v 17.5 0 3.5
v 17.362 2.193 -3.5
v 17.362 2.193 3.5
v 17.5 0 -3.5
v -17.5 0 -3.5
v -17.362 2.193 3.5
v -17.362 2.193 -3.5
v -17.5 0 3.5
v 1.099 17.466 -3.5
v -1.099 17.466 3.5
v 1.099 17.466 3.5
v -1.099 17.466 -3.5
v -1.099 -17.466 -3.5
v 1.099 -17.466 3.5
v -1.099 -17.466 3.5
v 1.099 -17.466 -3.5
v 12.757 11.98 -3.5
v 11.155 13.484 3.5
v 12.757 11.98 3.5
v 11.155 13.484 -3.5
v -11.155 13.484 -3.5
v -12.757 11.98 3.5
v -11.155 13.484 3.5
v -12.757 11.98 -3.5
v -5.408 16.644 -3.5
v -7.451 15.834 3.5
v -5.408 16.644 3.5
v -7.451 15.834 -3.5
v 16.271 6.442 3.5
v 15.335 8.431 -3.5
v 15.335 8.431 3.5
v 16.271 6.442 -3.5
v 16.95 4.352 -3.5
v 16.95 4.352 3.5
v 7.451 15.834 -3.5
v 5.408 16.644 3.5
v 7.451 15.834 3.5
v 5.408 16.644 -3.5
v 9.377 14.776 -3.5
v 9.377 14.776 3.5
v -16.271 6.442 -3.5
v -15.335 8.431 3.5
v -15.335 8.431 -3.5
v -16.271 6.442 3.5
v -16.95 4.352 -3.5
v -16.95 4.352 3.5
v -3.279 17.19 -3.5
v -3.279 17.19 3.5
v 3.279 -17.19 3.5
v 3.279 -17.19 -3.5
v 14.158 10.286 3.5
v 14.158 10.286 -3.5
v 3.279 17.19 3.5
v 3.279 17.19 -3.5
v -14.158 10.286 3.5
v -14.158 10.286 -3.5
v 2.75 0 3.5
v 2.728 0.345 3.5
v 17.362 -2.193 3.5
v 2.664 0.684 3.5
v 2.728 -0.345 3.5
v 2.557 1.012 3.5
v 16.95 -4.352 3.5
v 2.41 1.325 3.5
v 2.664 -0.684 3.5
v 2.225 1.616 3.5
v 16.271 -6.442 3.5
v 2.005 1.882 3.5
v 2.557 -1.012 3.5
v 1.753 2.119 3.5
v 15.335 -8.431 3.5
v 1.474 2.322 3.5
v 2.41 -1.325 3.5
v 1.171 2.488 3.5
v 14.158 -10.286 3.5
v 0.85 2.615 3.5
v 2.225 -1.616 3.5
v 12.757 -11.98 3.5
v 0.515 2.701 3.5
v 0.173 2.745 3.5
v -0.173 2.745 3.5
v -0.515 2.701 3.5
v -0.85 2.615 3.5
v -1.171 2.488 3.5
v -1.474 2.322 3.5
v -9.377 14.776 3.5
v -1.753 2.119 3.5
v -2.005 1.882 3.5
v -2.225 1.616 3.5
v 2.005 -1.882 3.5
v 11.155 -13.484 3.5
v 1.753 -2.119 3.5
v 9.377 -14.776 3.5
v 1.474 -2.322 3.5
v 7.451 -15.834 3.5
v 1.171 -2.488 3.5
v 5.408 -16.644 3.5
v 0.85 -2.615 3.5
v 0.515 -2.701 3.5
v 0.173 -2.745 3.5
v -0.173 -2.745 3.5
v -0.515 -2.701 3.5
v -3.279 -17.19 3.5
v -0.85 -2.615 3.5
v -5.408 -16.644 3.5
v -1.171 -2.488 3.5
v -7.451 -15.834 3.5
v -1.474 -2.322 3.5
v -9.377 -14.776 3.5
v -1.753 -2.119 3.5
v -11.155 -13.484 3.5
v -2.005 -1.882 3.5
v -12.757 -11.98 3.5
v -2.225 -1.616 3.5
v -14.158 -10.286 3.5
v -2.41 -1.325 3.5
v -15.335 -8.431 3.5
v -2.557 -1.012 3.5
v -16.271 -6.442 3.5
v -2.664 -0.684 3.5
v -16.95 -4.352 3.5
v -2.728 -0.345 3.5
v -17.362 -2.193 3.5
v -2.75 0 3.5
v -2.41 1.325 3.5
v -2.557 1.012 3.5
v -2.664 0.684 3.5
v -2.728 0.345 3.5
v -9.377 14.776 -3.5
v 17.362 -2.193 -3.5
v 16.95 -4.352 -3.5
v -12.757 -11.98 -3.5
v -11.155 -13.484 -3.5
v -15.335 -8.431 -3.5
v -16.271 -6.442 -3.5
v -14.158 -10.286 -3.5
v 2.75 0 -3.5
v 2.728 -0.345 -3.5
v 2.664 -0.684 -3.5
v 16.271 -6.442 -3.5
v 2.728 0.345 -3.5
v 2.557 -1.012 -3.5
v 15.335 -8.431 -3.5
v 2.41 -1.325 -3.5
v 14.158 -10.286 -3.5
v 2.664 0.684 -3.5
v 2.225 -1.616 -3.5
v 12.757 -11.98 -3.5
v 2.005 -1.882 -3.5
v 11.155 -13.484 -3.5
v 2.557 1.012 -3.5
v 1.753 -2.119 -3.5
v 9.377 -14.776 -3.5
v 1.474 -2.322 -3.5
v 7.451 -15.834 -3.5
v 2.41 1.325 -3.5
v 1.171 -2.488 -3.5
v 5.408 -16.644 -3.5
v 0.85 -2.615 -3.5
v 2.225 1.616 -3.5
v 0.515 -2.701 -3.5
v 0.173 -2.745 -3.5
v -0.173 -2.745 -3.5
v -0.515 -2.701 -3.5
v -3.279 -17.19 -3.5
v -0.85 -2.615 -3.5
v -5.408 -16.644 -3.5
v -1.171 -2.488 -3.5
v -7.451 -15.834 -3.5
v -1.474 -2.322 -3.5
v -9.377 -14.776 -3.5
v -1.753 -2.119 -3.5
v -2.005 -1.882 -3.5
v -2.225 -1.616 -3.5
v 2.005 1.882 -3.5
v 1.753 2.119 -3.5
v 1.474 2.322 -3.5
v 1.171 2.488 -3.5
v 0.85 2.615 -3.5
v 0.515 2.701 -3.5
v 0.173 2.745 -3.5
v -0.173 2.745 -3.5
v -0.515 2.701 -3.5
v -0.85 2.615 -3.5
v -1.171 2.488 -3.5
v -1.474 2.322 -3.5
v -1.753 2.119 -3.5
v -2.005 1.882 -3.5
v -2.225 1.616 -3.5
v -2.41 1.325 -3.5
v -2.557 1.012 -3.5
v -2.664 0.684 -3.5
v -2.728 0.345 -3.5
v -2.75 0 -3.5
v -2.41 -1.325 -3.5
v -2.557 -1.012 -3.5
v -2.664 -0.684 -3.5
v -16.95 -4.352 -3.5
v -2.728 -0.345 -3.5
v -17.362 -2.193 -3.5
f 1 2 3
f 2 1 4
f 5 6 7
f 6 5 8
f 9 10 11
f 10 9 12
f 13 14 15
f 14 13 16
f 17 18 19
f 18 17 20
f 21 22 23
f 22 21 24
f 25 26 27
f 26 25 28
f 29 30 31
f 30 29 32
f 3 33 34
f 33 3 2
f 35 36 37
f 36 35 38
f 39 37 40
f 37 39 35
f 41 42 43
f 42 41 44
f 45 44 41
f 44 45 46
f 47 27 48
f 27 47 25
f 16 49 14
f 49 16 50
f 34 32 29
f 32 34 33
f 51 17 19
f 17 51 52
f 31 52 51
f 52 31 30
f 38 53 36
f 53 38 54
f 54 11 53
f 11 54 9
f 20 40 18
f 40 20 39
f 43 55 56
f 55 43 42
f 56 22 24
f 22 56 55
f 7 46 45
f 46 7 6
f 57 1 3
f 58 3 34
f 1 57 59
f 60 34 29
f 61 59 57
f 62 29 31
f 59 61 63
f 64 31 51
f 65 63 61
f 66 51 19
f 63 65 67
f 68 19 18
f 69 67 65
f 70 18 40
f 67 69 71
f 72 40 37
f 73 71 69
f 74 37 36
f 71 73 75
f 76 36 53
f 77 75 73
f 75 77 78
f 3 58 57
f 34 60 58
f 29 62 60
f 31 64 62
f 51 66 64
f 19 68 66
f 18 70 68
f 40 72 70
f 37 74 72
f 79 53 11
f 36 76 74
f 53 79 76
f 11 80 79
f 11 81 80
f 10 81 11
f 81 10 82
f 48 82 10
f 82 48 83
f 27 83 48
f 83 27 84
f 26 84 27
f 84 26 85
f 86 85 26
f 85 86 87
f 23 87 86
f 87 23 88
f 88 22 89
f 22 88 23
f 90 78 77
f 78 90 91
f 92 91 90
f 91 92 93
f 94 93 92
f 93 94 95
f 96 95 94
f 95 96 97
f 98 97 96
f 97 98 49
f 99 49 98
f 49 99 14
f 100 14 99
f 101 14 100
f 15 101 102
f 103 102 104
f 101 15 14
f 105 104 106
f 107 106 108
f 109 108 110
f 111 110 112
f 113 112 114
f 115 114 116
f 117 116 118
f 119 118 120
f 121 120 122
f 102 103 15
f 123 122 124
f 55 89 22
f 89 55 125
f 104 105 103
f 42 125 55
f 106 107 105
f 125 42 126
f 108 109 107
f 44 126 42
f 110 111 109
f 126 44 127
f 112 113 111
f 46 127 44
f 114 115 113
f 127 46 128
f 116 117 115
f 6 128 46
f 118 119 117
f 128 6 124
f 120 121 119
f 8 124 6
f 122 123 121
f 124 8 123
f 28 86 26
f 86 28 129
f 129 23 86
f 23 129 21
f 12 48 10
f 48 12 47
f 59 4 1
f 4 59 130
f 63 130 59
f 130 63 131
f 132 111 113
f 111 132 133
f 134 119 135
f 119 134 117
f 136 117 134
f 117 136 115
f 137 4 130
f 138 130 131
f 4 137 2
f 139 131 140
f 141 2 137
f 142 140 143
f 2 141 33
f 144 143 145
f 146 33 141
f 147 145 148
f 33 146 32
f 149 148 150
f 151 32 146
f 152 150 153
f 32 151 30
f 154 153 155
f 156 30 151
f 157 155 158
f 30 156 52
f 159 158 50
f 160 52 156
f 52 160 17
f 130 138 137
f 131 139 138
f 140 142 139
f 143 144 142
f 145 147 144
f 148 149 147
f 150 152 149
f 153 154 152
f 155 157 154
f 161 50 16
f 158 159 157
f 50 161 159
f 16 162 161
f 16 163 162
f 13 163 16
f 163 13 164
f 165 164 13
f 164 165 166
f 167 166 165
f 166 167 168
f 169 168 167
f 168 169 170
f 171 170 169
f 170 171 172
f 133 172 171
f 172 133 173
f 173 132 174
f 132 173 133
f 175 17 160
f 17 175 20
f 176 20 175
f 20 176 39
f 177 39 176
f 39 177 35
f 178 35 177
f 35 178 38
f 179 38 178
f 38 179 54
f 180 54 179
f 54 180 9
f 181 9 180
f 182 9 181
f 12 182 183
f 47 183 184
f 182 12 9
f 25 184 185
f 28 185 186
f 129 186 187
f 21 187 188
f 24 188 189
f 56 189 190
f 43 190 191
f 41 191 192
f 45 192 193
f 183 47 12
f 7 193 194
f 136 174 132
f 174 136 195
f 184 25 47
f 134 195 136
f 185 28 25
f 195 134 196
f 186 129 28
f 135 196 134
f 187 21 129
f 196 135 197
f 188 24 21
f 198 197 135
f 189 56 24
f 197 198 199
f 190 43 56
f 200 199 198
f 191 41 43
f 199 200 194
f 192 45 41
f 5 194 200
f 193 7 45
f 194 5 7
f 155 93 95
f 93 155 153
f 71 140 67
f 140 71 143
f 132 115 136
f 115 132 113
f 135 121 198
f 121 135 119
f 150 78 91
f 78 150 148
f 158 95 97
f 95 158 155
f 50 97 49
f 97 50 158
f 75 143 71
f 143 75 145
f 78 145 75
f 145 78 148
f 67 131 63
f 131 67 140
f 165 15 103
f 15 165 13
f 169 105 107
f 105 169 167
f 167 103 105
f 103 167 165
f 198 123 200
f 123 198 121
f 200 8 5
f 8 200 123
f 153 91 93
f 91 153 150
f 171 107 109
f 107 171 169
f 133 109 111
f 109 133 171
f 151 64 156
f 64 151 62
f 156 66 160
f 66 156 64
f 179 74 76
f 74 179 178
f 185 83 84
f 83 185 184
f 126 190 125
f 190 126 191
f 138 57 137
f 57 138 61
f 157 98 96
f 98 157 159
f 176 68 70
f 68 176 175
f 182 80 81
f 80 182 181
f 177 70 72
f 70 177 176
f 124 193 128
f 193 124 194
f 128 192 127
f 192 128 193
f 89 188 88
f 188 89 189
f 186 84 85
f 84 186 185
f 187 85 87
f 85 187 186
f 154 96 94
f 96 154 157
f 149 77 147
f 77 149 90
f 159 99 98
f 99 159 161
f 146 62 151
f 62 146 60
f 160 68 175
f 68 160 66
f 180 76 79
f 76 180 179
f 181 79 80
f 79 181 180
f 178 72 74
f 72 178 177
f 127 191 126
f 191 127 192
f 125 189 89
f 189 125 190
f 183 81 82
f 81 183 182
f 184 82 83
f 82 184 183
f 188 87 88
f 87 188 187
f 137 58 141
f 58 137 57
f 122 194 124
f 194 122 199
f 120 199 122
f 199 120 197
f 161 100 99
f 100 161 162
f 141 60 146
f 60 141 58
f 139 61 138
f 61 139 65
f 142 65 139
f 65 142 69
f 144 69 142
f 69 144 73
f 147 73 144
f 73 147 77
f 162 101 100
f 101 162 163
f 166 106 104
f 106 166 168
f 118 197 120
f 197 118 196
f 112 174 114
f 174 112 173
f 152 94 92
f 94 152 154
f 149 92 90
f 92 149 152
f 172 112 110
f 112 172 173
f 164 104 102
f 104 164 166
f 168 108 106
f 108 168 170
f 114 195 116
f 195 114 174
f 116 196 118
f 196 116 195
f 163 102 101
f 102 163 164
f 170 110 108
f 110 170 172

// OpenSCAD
$fn = 50;


difference() {
	union() {
		translate(v = [0, 0, -3.5000000000]) {
			cylinder(h = 7, r = 17.5000000000);
		}
	}
	union() {
		translate(v = [0, 0, -100.0000000000]) {
			cylinder(h = 200, r = 2.7500000000);
		}
	}
}
